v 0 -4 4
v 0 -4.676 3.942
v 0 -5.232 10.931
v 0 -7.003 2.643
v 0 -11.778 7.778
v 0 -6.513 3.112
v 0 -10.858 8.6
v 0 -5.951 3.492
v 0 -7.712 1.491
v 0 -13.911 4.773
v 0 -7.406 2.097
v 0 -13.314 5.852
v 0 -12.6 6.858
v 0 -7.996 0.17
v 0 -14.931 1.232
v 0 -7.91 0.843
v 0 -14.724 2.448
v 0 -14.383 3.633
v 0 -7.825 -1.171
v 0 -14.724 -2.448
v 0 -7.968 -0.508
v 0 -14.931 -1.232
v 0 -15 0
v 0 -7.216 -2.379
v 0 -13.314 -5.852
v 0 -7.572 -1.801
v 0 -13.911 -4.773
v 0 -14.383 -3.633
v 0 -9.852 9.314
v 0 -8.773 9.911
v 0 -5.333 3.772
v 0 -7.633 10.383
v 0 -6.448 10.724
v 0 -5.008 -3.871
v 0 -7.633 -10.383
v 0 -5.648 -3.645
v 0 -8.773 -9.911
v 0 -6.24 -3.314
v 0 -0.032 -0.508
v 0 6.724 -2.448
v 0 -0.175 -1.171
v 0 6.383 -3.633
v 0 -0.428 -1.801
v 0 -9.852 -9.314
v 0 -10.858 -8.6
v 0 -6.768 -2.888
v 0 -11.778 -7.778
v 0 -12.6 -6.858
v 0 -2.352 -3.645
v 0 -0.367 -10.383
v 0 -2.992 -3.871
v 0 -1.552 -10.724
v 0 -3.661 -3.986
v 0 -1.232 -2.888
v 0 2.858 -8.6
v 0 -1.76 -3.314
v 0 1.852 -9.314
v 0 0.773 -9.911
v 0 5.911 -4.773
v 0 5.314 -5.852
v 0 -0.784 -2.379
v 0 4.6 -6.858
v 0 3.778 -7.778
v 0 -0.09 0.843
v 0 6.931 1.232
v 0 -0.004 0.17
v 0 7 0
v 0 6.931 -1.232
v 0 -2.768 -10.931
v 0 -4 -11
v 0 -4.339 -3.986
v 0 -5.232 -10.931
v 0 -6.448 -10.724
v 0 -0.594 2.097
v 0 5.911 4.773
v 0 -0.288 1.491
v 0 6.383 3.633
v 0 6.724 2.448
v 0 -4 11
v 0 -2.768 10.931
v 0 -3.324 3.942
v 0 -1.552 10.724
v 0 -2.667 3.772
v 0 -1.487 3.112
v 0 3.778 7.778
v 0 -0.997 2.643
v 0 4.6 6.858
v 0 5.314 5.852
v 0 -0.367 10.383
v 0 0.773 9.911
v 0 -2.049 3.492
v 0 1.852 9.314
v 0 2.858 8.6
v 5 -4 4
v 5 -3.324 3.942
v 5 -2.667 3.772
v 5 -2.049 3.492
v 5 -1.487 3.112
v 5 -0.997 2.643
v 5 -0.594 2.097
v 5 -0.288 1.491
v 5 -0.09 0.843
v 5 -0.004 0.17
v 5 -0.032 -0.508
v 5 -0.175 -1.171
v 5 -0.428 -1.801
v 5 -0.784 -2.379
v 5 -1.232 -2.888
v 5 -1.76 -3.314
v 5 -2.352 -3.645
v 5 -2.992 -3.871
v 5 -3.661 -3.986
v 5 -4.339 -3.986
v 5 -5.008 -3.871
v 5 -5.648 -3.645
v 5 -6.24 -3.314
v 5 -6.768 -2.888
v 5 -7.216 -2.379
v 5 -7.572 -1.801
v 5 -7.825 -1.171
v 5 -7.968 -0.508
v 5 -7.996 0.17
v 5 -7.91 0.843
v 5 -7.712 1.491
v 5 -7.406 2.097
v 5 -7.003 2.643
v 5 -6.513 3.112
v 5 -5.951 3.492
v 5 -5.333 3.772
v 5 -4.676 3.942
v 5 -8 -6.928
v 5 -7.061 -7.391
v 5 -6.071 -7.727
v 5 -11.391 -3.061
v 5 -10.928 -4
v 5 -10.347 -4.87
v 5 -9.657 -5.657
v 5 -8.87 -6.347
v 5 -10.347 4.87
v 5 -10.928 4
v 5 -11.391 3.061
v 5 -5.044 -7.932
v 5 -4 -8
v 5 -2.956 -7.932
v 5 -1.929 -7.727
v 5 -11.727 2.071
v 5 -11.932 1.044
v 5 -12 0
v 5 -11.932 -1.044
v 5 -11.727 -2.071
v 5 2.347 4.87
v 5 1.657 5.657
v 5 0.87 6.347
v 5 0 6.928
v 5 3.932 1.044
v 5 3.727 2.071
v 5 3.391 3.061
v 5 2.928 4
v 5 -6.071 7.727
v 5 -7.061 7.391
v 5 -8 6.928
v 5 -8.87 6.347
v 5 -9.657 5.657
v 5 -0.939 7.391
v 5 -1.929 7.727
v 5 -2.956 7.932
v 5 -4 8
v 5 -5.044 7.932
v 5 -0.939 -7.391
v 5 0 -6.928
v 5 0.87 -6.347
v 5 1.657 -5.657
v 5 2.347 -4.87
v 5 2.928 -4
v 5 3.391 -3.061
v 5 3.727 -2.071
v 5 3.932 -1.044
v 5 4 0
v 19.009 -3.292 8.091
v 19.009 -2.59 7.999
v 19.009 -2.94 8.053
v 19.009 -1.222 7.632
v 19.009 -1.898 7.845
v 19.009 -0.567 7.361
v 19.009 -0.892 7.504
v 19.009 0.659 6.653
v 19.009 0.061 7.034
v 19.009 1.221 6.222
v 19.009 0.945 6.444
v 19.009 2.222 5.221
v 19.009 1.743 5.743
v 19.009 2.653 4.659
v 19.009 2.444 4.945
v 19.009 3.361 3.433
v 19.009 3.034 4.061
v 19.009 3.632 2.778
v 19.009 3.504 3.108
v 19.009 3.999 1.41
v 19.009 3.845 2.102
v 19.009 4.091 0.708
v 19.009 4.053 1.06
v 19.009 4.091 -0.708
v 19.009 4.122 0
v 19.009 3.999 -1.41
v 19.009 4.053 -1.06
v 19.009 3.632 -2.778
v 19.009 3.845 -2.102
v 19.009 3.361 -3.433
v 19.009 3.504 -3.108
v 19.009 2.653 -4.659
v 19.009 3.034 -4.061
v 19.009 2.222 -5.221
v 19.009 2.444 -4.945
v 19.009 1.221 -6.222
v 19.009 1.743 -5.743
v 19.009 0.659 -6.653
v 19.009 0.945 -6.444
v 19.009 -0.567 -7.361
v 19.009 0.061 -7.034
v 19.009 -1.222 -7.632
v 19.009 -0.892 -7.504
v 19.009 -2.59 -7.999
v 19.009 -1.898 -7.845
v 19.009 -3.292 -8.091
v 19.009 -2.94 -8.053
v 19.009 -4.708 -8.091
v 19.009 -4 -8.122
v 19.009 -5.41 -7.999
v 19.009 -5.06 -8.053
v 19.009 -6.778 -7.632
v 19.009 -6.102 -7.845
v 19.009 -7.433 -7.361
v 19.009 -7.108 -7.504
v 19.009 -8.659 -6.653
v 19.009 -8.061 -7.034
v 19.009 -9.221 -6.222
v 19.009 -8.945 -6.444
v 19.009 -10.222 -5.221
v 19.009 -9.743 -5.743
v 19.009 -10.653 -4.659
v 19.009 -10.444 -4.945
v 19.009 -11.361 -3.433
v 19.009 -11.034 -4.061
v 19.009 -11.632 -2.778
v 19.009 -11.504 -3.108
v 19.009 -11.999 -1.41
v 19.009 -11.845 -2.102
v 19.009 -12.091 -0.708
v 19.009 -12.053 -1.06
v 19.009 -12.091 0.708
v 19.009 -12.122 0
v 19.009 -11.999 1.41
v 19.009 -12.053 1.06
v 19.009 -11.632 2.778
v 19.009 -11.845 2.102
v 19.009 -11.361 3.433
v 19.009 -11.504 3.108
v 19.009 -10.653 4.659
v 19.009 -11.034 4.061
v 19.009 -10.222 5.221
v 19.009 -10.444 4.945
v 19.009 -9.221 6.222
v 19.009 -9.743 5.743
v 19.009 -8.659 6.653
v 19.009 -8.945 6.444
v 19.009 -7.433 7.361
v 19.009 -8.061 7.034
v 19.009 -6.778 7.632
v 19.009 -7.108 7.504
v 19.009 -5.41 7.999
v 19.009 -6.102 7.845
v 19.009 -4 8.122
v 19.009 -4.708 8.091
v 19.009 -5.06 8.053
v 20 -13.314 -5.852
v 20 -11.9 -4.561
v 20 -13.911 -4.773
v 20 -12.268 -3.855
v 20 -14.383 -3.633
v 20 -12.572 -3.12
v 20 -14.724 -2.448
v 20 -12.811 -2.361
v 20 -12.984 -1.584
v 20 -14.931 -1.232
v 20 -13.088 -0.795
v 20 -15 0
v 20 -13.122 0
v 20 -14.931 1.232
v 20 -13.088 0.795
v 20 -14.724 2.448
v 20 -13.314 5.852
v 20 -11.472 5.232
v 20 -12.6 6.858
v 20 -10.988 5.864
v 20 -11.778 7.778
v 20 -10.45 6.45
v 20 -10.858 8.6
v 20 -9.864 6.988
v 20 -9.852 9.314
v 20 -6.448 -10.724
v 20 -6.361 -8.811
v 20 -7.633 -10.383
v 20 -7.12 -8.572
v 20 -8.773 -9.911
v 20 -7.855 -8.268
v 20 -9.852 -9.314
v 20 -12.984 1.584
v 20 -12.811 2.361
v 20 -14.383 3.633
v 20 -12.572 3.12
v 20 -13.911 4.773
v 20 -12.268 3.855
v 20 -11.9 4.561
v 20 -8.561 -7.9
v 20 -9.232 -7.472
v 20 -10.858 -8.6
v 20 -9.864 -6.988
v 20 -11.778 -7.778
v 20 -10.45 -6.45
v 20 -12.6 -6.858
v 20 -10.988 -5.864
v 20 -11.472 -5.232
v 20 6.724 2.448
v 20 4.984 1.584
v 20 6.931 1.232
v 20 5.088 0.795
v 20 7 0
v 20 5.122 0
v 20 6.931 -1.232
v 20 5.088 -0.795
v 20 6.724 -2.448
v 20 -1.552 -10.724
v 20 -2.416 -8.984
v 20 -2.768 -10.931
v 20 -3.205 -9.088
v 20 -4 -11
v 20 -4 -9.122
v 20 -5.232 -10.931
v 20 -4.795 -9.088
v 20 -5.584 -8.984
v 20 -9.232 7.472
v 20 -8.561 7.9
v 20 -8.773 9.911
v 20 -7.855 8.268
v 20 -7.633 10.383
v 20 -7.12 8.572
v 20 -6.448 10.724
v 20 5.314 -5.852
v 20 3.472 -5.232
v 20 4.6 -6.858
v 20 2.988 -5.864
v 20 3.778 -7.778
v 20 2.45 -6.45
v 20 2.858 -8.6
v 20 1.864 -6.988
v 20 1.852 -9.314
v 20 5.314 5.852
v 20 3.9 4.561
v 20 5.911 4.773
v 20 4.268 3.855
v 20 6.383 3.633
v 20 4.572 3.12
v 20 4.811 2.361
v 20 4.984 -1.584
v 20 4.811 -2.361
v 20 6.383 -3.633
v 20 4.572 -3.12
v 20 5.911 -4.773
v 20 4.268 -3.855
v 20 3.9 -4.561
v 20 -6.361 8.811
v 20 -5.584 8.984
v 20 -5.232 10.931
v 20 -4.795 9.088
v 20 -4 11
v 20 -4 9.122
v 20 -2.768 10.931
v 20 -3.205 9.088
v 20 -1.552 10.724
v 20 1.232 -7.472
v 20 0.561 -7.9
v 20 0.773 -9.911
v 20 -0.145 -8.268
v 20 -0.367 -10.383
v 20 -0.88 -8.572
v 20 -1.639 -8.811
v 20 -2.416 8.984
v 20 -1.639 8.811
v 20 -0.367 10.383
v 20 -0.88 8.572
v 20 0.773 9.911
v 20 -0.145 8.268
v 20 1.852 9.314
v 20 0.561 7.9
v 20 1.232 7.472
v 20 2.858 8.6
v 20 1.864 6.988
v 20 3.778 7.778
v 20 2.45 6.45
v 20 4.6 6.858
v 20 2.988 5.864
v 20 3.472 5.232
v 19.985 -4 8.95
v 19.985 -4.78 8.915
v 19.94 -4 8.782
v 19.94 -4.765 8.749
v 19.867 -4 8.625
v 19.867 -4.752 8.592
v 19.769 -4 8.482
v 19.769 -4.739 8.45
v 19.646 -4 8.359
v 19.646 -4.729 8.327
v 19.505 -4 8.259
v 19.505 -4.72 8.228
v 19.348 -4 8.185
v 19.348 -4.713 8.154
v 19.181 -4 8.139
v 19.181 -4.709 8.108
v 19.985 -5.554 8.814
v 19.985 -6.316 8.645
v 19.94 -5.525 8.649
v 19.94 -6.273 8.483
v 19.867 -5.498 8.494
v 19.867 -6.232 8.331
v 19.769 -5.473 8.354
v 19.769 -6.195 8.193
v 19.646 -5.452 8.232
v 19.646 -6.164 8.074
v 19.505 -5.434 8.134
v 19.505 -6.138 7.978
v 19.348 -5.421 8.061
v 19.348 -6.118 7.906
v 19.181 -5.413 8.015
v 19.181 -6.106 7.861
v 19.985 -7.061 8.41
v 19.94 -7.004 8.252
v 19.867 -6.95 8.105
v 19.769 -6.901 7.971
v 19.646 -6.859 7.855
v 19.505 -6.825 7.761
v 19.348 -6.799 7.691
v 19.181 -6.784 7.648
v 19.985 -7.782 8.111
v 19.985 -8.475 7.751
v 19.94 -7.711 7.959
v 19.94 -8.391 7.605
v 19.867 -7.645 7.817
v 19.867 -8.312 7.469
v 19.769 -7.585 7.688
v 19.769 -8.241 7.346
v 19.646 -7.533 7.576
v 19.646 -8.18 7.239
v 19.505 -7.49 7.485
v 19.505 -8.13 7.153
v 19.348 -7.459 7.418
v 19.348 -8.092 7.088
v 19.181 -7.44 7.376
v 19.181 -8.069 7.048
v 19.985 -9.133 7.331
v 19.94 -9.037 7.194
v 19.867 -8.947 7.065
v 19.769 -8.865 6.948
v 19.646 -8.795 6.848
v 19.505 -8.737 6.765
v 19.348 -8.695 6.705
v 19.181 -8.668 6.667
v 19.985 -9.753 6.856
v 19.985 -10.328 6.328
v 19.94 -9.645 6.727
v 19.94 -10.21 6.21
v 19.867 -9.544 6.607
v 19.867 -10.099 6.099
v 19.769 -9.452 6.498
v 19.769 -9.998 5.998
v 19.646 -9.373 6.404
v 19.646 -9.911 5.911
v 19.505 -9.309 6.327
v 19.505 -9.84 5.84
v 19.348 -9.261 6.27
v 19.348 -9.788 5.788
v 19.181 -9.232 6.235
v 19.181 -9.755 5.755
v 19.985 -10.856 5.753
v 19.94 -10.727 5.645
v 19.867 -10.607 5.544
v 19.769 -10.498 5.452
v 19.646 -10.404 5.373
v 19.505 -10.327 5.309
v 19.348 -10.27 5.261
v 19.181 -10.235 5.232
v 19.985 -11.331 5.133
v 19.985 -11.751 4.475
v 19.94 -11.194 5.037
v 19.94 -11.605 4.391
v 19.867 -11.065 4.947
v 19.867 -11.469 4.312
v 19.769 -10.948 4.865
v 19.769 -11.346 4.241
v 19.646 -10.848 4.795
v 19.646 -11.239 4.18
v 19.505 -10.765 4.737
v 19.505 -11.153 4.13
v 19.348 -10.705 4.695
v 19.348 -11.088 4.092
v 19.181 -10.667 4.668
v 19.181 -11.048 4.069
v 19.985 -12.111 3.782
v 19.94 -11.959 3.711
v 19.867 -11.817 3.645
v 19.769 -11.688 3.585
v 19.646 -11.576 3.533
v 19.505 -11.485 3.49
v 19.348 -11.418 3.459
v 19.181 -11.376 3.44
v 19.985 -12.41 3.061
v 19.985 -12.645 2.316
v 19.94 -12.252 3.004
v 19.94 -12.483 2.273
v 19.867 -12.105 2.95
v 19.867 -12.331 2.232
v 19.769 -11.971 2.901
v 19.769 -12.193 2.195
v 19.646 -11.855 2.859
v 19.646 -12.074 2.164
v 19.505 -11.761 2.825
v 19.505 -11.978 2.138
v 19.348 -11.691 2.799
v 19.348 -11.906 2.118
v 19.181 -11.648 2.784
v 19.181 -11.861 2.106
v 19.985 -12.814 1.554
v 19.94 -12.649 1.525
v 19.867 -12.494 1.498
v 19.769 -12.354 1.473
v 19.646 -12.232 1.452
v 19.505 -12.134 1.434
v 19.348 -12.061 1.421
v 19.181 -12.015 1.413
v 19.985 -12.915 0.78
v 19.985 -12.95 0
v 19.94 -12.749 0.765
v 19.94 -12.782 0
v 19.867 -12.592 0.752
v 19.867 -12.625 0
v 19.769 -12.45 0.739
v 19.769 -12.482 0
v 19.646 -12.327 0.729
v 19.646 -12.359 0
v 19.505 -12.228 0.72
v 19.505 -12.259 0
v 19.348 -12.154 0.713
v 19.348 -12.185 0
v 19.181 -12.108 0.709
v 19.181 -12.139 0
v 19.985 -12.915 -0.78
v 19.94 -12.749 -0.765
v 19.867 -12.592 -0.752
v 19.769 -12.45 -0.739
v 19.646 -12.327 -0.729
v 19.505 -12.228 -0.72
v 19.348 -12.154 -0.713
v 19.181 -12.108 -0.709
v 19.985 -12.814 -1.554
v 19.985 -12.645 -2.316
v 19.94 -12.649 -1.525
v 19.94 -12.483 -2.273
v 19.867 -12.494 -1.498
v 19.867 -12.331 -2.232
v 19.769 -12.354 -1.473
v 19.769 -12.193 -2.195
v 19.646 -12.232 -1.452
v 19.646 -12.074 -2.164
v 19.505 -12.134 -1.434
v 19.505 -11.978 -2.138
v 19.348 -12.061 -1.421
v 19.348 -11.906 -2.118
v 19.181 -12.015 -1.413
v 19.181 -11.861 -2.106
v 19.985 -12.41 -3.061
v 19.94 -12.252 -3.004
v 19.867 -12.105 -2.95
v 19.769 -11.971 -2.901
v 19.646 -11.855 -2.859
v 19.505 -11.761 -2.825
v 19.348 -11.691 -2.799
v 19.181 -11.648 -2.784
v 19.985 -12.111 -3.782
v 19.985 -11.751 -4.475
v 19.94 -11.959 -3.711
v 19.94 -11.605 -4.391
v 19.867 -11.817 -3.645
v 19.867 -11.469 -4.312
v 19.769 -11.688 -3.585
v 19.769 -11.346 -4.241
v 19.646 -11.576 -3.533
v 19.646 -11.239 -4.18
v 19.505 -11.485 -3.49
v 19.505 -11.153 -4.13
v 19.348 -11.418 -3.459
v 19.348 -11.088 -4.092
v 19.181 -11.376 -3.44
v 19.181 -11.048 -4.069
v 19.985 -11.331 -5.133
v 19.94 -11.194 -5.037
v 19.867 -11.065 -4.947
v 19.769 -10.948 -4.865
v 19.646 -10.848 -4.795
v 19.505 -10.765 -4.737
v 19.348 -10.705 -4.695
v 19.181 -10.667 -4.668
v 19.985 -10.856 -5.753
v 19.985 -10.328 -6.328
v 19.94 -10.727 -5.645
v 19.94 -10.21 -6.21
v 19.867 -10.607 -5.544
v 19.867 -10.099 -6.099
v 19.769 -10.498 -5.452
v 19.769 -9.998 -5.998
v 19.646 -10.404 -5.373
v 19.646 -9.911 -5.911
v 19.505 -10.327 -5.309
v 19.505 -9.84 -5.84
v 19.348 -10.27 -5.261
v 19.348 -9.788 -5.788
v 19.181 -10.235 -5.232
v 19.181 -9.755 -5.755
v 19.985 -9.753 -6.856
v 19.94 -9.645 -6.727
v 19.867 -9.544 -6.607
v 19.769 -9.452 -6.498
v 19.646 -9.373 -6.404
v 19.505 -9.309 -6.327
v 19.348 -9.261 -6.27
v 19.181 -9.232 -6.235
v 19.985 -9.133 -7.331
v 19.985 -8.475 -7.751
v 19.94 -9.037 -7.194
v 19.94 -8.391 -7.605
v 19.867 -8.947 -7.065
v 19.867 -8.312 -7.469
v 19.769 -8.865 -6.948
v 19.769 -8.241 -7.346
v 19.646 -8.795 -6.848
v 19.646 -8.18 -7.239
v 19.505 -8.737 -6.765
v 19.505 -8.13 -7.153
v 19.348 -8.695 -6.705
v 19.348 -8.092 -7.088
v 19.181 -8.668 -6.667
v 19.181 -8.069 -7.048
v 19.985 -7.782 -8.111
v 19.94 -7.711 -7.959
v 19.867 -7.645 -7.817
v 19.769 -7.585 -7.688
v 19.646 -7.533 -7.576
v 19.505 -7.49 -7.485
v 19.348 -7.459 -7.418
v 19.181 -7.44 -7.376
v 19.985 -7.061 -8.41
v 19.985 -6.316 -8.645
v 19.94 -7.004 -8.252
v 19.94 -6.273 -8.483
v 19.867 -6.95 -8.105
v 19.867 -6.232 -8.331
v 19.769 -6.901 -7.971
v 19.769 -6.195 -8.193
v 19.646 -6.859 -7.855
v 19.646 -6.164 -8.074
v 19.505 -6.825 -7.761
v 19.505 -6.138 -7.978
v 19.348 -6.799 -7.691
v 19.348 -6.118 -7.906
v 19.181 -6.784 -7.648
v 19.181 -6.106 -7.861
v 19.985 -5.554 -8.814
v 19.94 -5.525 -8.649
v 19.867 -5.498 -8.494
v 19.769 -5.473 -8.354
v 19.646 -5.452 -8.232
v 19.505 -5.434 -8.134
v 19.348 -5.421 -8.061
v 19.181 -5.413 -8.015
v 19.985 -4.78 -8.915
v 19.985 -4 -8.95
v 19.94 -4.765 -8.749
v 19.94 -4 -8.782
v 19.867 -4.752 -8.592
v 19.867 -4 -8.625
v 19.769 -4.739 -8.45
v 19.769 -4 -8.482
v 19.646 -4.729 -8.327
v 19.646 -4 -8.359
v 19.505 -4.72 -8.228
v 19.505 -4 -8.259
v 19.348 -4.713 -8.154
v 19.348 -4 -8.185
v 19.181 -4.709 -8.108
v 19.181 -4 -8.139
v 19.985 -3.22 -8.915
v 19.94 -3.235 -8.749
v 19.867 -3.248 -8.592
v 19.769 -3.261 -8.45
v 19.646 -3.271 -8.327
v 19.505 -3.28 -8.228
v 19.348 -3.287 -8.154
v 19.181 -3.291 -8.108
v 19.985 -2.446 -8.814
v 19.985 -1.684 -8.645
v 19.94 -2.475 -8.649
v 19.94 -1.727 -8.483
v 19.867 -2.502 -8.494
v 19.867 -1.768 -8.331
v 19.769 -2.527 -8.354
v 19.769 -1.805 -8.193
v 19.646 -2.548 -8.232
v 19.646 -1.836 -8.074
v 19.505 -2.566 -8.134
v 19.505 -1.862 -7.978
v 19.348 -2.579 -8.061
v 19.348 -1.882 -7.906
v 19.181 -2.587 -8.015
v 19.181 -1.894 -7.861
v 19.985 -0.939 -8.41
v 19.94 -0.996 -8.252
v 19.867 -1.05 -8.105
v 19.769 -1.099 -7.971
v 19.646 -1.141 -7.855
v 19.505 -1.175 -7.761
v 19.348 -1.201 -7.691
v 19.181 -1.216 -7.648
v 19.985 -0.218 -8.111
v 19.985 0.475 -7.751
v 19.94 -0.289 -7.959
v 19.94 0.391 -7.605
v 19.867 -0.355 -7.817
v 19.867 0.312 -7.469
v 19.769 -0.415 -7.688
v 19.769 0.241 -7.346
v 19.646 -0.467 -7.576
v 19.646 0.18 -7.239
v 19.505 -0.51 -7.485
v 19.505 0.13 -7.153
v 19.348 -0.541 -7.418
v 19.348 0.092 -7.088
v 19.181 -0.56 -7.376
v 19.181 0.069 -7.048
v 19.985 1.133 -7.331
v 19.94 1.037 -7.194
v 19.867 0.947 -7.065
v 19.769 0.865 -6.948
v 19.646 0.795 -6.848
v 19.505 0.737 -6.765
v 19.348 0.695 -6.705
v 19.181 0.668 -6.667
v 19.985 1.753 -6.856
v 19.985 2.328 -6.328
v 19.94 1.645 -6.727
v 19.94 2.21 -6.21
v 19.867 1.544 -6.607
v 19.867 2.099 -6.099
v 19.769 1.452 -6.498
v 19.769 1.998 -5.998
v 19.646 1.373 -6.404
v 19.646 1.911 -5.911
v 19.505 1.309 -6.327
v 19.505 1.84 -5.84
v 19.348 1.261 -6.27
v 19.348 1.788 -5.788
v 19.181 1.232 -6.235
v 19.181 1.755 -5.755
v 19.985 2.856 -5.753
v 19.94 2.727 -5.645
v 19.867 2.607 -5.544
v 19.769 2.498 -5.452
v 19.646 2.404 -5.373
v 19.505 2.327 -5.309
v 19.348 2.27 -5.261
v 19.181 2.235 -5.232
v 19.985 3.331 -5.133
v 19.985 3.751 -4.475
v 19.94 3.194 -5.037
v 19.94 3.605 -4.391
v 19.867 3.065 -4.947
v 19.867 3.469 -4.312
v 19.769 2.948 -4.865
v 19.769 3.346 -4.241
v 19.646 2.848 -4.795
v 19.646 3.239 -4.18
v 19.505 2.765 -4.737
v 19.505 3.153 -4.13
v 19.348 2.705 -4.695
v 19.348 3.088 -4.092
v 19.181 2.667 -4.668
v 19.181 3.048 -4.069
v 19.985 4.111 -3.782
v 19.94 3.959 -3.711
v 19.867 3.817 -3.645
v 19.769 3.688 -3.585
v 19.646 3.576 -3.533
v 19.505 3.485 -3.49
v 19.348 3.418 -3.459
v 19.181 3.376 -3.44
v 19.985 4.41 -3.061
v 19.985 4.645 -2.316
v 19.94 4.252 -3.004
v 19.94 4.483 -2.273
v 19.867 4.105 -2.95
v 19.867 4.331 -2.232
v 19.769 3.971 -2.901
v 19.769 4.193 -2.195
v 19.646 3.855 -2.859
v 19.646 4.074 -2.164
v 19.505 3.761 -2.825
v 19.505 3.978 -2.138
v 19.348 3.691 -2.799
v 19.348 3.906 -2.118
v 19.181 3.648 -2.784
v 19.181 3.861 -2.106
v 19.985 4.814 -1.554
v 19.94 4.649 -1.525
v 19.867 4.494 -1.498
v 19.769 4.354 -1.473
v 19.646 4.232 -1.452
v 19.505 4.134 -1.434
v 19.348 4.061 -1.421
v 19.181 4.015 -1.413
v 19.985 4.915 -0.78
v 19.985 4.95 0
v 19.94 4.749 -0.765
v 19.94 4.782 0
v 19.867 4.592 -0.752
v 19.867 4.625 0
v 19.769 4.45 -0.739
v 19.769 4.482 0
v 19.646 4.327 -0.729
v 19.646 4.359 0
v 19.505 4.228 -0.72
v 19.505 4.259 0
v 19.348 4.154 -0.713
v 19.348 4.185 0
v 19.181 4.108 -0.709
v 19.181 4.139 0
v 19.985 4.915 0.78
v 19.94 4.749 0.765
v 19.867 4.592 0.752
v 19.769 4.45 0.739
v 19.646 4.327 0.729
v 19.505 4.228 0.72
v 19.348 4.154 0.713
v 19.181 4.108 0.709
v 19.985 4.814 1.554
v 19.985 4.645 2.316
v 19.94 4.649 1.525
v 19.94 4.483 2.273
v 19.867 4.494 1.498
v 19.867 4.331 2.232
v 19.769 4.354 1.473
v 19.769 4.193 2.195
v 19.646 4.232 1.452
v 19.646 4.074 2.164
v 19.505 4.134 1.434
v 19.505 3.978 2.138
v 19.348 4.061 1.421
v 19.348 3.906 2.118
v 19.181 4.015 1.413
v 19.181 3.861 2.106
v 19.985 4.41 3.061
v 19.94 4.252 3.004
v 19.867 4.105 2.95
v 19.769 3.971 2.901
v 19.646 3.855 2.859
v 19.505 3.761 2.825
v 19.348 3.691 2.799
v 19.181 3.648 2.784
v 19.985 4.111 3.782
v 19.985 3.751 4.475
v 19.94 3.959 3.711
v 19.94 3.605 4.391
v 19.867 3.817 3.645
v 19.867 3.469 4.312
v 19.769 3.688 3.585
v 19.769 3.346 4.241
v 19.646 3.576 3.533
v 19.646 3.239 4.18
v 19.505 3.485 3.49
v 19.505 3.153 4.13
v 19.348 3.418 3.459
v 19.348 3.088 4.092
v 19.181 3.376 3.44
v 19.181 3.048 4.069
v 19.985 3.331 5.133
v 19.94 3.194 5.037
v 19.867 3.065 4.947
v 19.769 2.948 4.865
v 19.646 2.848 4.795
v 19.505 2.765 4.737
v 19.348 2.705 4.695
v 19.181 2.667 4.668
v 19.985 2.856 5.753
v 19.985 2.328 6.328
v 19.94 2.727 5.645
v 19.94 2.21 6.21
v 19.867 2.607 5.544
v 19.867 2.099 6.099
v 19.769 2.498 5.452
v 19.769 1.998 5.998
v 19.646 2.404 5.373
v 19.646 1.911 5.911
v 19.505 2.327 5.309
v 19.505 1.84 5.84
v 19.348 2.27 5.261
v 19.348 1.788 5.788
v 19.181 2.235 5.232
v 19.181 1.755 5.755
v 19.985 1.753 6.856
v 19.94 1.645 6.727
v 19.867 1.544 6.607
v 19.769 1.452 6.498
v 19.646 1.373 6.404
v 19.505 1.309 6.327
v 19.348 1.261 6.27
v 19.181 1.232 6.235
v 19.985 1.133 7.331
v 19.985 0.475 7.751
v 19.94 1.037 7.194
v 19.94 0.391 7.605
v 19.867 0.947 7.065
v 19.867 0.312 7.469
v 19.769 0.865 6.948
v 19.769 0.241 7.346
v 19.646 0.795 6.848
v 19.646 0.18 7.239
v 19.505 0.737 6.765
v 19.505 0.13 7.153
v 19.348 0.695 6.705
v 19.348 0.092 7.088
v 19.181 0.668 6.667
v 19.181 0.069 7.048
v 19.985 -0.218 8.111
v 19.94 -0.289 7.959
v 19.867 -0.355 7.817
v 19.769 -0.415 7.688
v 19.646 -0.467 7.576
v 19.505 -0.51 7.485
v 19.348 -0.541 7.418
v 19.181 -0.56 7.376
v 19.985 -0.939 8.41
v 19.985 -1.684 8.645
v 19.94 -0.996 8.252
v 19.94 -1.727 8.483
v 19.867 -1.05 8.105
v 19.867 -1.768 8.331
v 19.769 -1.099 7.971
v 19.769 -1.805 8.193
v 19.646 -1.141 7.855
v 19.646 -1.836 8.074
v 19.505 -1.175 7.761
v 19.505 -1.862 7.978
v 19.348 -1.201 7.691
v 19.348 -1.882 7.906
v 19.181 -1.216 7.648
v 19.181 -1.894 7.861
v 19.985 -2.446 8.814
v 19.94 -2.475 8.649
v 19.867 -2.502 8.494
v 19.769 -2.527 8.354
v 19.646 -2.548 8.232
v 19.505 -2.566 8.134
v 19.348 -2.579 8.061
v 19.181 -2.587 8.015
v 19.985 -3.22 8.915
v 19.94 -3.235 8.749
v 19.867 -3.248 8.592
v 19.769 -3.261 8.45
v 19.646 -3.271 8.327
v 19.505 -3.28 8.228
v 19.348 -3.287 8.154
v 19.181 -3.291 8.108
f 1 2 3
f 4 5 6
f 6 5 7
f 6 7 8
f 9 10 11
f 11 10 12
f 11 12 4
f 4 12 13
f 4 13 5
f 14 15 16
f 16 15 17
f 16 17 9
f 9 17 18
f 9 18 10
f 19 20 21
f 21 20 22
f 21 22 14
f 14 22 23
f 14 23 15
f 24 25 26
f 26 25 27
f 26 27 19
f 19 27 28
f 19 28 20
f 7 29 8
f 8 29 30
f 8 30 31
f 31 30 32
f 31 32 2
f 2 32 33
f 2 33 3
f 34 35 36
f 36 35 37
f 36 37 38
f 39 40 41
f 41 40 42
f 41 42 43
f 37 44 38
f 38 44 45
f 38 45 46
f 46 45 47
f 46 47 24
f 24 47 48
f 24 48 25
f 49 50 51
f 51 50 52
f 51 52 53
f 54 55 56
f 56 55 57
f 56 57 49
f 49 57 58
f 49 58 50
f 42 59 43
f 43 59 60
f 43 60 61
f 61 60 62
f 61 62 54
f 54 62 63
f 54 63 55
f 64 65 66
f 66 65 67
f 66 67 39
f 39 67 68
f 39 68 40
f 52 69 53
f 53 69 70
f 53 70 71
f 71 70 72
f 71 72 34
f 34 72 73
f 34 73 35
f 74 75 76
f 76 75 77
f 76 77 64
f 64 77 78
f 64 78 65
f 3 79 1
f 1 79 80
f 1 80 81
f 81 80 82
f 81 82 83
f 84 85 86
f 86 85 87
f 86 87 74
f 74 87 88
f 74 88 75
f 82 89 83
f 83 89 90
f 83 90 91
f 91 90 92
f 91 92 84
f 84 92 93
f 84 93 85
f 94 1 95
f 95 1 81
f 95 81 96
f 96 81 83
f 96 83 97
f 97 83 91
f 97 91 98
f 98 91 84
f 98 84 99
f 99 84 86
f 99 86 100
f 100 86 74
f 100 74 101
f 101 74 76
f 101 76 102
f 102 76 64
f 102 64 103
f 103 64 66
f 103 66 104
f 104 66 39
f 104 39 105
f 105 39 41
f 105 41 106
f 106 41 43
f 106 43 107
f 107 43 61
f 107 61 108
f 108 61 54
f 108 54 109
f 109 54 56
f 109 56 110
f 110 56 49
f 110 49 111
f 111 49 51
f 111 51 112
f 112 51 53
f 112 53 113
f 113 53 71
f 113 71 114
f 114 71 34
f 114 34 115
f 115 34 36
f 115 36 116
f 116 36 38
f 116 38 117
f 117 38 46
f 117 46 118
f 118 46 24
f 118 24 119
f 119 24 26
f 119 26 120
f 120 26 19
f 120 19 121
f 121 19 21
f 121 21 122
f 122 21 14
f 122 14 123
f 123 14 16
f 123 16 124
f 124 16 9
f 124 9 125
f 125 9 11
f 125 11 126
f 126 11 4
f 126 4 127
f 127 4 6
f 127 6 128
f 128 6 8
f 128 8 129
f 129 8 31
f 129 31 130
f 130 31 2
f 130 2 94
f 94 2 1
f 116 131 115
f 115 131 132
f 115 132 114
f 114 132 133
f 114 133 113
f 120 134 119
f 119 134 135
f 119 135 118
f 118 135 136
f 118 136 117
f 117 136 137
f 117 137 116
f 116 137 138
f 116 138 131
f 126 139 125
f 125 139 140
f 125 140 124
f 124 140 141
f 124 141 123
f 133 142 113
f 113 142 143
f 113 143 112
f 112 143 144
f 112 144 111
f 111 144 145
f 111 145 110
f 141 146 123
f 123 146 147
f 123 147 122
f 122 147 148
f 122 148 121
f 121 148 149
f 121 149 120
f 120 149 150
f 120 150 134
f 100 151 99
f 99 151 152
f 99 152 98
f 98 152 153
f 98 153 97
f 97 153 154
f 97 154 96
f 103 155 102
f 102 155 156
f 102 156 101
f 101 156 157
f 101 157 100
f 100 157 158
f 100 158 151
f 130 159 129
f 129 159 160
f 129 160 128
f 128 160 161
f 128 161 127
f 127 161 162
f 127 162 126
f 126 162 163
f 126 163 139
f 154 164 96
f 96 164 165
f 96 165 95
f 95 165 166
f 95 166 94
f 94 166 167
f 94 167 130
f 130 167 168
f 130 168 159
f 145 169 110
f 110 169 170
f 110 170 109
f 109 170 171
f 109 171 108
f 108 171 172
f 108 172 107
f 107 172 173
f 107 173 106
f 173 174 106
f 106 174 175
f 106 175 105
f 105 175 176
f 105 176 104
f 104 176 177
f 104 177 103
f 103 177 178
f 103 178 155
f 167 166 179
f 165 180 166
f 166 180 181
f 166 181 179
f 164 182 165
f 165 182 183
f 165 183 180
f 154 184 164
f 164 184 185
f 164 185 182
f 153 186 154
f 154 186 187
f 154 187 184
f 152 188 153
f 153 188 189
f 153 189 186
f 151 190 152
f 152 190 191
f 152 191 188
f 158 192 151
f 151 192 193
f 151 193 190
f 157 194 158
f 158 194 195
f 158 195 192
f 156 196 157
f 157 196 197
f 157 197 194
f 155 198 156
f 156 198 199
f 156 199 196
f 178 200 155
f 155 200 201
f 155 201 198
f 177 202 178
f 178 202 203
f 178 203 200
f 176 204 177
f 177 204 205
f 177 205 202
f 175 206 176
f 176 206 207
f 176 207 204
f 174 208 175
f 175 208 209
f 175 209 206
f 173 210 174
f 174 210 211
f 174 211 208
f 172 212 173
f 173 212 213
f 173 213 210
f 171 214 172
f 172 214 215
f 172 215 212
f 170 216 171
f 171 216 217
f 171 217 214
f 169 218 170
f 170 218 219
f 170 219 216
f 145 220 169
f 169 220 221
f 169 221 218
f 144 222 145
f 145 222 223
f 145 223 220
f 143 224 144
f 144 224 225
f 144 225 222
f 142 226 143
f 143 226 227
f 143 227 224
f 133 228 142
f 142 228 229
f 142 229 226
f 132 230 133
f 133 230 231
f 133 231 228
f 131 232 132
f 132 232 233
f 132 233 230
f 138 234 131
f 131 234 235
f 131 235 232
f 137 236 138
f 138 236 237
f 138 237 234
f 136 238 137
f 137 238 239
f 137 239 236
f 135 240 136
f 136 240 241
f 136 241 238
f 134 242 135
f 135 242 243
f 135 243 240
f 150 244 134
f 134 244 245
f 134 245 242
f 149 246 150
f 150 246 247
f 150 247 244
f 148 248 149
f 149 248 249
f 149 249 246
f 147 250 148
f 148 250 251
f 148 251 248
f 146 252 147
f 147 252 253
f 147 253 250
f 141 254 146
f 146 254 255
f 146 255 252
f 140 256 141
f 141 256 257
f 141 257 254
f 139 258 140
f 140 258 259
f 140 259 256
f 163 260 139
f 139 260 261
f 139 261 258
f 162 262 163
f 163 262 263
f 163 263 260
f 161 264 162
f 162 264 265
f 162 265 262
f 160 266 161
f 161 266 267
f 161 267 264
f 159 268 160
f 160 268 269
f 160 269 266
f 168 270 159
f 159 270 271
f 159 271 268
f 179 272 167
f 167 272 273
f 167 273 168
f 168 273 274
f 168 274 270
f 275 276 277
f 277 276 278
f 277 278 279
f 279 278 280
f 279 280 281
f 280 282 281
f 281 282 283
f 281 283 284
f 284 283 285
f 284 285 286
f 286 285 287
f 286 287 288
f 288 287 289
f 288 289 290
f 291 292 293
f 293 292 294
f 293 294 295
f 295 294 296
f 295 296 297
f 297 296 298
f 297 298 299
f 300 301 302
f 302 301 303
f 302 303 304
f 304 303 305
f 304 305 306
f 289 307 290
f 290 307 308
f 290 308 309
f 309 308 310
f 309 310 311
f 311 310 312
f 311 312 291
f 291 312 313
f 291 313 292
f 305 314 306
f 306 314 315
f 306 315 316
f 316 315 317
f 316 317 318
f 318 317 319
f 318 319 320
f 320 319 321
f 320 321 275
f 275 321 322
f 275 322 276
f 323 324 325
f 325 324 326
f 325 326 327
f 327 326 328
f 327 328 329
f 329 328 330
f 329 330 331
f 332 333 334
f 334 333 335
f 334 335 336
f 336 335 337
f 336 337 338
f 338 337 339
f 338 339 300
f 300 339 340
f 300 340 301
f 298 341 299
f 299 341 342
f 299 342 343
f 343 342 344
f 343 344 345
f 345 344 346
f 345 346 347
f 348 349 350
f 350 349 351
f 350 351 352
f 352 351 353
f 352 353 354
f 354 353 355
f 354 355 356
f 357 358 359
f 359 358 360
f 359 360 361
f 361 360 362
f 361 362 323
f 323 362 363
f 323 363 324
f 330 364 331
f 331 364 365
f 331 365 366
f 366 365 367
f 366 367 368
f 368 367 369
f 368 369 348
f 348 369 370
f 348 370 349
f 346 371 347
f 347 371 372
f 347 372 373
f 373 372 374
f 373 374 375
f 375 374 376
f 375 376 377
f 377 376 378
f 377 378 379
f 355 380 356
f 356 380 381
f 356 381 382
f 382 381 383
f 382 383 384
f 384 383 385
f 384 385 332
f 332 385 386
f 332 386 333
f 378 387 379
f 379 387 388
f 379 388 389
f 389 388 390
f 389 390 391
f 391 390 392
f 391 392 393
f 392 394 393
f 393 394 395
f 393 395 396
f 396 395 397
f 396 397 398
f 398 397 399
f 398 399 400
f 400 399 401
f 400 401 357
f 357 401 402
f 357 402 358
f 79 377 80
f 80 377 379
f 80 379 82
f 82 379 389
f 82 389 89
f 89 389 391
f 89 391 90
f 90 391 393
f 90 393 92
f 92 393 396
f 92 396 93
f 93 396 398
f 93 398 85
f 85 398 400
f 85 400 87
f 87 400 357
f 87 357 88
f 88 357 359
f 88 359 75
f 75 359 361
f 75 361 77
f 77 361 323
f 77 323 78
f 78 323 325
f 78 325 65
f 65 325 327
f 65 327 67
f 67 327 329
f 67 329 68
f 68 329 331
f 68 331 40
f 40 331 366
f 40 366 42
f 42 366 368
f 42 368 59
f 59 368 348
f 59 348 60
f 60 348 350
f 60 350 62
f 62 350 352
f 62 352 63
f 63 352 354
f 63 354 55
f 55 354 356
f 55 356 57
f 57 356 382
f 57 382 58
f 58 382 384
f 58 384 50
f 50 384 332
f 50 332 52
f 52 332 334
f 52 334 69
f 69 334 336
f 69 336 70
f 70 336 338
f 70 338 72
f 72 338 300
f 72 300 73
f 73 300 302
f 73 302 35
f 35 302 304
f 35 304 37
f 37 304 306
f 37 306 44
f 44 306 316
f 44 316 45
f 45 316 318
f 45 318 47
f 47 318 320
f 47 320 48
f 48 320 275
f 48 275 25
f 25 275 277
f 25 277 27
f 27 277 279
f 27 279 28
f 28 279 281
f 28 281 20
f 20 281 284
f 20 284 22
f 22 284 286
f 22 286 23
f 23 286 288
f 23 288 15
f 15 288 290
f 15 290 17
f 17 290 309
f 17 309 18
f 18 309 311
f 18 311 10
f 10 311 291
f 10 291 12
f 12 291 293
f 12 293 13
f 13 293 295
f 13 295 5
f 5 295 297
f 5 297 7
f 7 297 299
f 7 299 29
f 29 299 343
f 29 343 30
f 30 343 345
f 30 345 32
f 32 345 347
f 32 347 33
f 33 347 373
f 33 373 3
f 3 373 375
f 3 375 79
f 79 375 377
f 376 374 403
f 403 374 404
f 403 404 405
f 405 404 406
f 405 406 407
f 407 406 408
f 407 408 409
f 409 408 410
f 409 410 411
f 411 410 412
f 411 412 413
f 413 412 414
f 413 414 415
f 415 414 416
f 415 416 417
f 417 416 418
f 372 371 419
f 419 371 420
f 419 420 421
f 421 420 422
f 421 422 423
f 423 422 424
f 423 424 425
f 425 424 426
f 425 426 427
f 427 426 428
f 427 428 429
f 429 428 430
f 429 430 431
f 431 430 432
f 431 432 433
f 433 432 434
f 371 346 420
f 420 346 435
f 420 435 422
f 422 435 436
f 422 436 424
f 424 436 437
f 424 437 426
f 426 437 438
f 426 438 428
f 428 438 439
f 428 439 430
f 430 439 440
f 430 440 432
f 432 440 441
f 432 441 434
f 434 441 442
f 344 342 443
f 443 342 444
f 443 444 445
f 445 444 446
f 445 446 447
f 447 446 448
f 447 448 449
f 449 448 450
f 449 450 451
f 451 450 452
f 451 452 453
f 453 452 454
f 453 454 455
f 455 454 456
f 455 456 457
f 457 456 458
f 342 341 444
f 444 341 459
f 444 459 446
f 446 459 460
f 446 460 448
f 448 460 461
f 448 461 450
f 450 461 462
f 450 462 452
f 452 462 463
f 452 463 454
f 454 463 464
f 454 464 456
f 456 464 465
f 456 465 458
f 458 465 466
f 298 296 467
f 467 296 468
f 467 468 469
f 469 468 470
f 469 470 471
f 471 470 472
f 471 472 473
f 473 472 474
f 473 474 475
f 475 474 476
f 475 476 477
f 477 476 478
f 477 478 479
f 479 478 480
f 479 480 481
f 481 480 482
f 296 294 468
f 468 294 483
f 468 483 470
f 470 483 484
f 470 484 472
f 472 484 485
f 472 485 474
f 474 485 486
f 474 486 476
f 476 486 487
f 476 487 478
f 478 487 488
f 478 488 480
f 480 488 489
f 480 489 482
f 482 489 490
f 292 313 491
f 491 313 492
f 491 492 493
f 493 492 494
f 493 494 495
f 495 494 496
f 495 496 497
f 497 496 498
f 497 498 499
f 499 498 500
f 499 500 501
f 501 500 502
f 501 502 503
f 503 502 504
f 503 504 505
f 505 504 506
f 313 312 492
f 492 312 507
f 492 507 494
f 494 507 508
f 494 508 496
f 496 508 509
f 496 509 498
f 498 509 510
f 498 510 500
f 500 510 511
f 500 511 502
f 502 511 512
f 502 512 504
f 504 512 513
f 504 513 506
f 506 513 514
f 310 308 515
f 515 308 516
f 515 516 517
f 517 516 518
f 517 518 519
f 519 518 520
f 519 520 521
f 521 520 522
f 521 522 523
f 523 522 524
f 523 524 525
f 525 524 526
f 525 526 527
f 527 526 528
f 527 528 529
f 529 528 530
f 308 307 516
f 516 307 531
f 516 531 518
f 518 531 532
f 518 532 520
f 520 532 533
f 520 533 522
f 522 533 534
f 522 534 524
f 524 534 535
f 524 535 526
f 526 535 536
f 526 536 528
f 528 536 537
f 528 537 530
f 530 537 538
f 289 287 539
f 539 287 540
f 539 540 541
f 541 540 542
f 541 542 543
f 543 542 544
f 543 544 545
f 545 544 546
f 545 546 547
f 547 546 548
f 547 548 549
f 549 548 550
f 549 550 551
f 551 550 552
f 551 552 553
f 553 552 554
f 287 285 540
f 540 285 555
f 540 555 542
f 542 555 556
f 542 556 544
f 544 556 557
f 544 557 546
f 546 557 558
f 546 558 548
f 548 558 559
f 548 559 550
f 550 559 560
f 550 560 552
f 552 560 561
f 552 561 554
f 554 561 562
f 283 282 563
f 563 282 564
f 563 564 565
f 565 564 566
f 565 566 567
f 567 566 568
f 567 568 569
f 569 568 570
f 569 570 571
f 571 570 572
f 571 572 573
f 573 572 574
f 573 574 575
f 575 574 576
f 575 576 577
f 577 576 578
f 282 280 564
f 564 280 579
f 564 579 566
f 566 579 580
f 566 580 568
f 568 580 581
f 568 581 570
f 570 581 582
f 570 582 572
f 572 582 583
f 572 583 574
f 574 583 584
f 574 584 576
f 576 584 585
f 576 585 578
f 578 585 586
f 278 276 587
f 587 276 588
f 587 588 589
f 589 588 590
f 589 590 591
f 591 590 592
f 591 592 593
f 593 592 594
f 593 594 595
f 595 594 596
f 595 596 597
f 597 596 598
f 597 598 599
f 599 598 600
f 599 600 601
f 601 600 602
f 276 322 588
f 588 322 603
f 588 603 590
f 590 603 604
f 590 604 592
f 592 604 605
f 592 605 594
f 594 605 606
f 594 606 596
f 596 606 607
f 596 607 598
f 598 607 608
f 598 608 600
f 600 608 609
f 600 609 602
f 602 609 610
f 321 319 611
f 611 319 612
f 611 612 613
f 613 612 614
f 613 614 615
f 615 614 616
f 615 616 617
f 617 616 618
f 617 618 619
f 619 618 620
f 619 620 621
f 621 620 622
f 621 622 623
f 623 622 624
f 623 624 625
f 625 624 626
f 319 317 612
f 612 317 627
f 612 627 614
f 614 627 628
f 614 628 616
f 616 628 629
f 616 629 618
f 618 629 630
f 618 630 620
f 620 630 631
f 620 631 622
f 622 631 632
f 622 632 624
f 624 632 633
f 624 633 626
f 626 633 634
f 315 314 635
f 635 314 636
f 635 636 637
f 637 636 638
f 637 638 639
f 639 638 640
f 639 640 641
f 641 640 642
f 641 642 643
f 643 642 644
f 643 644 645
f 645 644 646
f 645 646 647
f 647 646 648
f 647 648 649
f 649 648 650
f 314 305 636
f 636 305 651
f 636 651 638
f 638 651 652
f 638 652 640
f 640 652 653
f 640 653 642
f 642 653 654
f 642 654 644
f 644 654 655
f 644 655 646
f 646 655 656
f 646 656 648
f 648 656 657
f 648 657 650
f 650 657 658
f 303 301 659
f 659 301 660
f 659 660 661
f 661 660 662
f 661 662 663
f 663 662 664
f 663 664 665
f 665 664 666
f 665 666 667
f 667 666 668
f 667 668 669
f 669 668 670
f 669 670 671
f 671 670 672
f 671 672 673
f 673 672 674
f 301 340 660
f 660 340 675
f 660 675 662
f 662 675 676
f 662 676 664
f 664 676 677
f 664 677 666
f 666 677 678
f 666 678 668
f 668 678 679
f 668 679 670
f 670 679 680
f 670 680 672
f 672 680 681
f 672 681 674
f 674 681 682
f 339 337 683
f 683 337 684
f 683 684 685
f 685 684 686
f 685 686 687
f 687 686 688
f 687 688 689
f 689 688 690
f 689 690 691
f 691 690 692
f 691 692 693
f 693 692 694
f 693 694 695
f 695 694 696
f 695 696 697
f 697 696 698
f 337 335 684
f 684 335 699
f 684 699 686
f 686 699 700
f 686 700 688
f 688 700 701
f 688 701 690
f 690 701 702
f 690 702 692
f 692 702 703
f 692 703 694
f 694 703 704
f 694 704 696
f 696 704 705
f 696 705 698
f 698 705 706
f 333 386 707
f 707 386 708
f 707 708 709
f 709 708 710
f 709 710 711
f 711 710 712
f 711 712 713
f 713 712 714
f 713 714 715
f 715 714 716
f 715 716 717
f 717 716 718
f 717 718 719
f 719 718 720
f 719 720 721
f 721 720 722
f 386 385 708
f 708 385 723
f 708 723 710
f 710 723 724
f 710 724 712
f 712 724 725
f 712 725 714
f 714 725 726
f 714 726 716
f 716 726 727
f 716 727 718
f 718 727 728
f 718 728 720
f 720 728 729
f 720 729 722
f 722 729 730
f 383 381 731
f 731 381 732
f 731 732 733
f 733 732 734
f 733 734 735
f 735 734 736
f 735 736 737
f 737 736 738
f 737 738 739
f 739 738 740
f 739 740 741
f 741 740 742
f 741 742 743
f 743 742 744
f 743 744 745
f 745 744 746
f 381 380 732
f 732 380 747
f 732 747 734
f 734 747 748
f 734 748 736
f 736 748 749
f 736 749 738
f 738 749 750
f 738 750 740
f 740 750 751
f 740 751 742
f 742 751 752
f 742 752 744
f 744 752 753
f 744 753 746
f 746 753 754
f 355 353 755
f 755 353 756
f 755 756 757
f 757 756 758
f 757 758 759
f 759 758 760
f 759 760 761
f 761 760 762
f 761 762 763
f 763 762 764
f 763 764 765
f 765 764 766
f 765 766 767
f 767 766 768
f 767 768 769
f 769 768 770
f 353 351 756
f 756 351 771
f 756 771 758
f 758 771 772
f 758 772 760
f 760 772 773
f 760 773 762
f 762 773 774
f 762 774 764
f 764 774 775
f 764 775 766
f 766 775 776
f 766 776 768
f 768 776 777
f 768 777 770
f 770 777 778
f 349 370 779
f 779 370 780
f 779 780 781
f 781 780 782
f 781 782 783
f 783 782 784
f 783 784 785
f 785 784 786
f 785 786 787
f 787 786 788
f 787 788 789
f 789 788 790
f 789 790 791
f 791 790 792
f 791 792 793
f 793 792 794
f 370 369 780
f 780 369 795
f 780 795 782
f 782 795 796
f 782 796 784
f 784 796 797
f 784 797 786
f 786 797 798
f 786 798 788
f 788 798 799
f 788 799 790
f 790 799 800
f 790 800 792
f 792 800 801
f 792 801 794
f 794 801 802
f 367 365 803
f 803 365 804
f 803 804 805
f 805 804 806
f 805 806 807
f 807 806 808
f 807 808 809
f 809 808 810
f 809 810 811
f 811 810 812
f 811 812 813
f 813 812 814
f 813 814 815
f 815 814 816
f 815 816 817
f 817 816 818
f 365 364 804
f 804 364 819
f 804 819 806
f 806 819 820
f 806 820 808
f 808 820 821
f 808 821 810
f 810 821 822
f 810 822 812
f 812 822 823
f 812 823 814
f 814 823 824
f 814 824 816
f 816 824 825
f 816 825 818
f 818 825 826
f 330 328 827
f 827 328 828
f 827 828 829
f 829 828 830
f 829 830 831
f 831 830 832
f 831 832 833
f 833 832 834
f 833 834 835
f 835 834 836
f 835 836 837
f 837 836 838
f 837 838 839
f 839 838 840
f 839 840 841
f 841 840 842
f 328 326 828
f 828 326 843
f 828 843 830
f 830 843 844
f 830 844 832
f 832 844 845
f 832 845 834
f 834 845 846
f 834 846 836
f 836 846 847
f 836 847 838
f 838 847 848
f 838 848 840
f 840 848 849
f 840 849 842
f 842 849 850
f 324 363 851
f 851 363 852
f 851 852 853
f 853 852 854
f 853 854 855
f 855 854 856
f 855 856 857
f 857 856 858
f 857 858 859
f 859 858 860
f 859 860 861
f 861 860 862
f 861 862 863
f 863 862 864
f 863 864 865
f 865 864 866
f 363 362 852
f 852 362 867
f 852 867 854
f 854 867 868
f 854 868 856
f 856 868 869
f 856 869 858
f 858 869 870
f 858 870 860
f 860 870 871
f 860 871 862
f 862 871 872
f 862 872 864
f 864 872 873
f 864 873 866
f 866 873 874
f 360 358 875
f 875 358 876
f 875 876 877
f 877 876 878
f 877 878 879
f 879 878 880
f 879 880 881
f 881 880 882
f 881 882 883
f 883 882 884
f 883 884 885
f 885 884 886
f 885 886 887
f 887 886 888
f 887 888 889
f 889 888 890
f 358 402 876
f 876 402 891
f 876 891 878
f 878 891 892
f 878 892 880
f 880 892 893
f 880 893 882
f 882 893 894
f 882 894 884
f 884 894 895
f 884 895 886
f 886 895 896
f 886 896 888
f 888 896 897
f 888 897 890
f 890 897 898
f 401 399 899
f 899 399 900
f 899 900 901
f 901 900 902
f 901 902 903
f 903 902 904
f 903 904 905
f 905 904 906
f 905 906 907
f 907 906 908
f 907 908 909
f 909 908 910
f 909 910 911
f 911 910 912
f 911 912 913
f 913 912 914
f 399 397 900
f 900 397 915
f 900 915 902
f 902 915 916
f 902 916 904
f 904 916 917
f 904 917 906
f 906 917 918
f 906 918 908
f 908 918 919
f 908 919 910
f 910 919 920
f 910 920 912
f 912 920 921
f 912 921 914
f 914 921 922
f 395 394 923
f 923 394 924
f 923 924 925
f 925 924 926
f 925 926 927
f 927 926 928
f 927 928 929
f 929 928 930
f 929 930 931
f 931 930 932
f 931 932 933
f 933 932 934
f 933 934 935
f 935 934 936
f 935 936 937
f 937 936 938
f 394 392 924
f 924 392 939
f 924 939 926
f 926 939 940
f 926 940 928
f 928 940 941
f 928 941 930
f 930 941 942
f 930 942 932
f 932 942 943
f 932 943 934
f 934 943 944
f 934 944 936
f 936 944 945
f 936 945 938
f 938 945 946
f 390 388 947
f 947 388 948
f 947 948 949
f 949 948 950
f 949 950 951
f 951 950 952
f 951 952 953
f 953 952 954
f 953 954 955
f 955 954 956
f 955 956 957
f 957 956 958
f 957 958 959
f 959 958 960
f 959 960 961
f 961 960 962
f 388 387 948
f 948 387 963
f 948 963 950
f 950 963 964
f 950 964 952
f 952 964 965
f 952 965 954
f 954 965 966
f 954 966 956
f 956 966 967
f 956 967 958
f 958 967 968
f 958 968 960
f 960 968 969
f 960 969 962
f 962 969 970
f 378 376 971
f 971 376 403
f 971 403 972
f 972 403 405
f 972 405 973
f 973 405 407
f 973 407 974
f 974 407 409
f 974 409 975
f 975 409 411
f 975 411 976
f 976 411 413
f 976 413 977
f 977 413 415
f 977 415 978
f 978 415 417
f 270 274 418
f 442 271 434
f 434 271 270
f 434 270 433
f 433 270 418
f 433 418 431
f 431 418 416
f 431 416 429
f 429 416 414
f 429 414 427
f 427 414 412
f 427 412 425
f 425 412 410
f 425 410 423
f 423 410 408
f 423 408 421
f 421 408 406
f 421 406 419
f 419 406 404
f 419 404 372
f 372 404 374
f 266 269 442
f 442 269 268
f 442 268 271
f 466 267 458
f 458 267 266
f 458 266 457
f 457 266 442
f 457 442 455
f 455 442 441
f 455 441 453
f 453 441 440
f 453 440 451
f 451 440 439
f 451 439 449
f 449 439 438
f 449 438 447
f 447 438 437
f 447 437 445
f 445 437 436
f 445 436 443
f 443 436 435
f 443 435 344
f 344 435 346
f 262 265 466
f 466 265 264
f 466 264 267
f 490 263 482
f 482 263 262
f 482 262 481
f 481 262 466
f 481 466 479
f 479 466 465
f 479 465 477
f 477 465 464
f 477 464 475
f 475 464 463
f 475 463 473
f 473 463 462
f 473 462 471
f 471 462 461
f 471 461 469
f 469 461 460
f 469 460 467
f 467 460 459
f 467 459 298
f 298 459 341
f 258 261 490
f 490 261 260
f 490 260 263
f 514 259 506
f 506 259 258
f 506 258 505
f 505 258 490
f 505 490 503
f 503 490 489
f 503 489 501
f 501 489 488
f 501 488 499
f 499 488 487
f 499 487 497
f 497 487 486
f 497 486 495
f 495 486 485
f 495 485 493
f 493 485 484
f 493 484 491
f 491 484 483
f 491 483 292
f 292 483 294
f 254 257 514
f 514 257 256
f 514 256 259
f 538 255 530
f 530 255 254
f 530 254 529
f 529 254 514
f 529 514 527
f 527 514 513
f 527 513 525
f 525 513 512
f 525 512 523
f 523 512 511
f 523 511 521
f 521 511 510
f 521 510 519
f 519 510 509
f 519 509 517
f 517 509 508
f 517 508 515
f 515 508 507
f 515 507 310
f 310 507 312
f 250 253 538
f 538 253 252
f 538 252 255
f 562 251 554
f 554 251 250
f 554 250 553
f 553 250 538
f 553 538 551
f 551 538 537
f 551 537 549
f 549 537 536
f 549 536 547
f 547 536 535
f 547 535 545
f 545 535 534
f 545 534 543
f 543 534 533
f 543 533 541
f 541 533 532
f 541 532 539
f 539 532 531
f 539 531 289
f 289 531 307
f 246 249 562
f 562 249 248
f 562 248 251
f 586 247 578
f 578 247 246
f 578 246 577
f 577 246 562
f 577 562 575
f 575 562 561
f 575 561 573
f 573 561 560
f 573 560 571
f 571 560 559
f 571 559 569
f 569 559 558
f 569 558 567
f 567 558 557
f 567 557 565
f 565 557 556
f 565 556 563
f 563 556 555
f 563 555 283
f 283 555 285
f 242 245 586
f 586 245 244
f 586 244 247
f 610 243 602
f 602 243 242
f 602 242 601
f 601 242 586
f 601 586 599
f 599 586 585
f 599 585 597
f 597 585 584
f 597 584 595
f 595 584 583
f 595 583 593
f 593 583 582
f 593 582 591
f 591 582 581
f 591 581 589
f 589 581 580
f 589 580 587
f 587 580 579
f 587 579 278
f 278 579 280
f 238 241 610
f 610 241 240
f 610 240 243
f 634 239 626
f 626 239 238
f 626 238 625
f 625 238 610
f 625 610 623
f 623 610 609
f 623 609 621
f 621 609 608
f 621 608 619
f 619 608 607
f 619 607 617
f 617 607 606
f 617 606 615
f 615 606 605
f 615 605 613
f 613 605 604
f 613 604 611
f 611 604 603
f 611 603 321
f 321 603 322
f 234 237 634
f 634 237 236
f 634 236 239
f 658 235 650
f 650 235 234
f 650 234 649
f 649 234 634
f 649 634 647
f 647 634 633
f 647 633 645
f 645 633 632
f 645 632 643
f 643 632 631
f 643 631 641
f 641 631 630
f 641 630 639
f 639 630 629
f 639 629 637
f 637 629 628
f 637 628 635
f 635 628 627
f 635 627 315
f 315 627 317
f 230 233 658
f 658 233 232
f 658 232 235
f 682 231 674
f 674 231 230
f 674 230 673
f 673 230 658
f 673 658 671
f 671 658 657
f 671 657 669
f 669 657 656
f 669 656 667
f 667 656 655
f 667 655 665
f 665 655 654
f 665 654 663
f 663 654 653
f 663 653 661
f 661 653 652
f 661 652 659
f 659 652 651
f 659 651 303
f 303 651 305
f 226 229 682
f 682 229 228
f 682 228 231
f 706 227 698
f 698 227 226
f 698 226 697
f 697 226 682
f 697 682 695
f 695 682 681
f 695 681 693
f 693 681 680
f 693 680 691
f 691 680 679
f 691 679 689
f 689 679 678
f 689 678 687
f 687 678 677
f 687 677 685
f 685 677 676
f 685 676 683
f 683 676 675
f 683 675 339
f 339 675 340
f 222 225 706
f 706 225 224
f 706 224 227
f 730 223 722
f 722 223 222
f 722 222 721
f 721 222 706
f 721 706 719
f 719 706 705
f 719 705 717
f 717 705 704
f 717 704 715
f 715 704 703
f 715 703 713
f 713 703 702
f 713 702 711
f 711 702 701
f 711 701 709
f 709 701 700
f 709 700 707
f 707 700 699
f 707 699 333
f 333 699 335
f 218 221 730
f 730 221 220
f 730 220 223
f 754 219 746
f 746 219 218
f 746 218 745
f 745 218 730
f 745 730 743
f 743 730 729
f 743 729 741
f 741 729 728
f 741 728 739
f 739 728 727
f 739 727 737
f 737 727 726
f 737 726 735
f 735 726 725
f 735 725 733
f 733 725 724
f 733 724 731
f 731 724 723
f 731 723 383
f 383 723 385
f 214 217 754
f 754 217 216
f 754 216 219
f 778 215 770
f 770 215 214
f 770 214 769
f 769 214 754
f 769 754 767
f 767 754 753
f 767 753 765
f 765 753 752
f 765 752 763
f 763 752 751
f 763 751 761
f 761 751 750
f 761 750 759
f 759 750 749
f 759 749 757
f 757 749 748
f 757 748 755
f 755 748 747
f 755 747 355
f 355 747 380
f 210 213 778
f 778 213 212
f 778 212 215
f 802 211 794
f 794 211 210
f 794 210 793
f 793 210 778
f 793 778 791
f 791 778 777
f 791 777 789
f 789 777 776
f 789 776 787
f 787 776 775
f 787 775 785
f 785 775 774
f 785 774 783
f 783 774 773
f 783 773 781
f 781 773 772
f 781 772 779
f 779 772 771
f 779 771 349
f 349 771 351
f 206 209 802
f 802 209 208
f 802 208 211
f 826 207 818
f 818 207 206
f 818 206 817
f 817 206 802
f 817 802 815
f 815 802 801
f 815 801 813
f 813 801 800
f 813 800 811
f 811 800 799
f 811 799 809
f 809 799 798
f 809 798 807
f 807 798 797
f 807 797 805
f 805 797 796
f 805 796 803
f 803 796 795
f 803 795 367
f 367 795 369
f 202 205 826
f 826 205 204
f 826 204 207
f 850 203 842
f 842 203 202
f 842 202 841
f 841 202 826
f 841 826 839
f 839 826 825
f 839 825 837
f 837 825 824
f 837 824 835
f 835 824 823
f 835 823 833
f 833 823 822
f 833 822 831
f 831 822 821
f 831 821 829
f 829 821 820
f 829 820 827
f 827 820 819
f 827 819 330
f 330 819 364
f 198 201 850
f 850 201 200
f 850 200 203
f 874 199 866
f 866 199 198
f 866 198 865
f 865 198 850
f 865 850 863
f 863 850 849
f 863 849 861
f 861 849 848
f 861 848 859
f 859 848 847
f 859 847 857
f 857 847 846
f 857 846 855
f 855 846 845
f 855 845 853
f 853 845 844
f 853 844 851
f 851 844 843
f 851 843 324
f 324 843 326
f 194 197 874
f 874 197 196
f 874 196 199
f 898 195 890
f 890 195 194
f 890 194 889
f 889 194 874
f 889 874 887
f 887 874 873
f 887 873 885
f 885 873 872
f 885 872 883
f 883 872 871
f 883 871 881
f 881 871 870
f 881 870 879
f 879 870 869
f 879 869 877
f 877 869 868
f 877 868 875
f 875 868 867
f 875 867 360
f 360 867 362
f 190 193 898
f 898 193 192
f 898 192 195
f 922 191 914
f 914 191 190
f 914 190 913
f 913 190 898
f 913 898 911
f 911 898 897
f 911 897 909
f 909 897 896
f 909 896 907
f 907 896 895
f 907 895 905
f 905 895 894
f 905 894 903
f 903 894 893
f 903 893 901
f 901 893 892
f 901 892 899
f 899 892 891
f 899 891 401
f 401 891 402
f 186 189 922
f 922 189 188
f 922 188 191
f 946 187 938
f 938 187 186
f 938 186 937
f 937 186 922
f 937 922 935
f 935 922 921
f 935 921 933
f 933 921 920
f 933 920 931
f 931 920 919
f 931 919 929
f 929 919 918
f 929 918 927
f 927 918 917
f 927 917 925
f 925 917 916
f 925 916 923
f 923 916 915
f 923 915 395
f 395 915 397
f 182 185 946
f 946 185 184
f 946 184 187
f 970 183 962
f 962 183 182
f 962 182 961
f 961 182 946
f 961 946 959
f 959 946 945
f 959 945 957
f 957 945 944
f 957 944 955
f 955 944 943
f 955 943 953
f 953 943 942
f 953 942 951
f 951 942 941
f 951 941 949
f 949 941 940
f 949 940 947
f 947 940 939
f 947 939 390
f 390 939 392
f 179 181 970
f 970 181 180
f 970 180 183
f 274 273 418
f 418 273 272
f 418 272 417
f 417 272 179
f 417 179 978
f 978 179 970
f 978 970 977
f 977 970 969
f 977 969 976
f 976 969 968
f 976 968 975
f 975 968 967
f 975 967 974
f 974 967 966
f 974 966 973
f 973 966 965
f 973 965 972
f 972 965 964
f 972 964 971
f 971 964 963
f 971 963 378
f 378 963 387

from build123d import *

# Parameters (mm, degrees)
DRAFT1_ANGLE = 0.5
FILLET2_R    = 1


with BuildPart() as part:
    # Sketch1 → Revolve1 (revolve)
    with BuildSketch(Plane.XY, mode=Mode.PRIVATE) as revolve1_sk:
        Polygon((0, 0), (5, 0), (5, 4), (20, 4), (20, 7), (0, 7), align=None)
    revolve(revolve1_sk.sketch.rotate(Axis((-15.220779221, -4, 0), (1, 0, 0)), 90), axis=Axis((-15.220779221, -4, 0), (1, 0, 0)))

    # Draft1
    draft1_faces = [part.faces().sort_by_distance(p)[0] for p in [
        (12.5, -4, -8),
    ]]
    draft(draft1_faces, Plane(origin=(5, 0, 0), x_dir=(0, 0, 1), z_dir=(1, 0, 0)), DRAFT1_ANGLE)

    # Fillet2
    fillet2_edges = [part.edges().sort_by_distance(p)[0] for p in [
        (20, -4, -8.130903017),
    ]]
    fillet(fillet2_edges, radius=FILLET2_R)


solid = part.part
